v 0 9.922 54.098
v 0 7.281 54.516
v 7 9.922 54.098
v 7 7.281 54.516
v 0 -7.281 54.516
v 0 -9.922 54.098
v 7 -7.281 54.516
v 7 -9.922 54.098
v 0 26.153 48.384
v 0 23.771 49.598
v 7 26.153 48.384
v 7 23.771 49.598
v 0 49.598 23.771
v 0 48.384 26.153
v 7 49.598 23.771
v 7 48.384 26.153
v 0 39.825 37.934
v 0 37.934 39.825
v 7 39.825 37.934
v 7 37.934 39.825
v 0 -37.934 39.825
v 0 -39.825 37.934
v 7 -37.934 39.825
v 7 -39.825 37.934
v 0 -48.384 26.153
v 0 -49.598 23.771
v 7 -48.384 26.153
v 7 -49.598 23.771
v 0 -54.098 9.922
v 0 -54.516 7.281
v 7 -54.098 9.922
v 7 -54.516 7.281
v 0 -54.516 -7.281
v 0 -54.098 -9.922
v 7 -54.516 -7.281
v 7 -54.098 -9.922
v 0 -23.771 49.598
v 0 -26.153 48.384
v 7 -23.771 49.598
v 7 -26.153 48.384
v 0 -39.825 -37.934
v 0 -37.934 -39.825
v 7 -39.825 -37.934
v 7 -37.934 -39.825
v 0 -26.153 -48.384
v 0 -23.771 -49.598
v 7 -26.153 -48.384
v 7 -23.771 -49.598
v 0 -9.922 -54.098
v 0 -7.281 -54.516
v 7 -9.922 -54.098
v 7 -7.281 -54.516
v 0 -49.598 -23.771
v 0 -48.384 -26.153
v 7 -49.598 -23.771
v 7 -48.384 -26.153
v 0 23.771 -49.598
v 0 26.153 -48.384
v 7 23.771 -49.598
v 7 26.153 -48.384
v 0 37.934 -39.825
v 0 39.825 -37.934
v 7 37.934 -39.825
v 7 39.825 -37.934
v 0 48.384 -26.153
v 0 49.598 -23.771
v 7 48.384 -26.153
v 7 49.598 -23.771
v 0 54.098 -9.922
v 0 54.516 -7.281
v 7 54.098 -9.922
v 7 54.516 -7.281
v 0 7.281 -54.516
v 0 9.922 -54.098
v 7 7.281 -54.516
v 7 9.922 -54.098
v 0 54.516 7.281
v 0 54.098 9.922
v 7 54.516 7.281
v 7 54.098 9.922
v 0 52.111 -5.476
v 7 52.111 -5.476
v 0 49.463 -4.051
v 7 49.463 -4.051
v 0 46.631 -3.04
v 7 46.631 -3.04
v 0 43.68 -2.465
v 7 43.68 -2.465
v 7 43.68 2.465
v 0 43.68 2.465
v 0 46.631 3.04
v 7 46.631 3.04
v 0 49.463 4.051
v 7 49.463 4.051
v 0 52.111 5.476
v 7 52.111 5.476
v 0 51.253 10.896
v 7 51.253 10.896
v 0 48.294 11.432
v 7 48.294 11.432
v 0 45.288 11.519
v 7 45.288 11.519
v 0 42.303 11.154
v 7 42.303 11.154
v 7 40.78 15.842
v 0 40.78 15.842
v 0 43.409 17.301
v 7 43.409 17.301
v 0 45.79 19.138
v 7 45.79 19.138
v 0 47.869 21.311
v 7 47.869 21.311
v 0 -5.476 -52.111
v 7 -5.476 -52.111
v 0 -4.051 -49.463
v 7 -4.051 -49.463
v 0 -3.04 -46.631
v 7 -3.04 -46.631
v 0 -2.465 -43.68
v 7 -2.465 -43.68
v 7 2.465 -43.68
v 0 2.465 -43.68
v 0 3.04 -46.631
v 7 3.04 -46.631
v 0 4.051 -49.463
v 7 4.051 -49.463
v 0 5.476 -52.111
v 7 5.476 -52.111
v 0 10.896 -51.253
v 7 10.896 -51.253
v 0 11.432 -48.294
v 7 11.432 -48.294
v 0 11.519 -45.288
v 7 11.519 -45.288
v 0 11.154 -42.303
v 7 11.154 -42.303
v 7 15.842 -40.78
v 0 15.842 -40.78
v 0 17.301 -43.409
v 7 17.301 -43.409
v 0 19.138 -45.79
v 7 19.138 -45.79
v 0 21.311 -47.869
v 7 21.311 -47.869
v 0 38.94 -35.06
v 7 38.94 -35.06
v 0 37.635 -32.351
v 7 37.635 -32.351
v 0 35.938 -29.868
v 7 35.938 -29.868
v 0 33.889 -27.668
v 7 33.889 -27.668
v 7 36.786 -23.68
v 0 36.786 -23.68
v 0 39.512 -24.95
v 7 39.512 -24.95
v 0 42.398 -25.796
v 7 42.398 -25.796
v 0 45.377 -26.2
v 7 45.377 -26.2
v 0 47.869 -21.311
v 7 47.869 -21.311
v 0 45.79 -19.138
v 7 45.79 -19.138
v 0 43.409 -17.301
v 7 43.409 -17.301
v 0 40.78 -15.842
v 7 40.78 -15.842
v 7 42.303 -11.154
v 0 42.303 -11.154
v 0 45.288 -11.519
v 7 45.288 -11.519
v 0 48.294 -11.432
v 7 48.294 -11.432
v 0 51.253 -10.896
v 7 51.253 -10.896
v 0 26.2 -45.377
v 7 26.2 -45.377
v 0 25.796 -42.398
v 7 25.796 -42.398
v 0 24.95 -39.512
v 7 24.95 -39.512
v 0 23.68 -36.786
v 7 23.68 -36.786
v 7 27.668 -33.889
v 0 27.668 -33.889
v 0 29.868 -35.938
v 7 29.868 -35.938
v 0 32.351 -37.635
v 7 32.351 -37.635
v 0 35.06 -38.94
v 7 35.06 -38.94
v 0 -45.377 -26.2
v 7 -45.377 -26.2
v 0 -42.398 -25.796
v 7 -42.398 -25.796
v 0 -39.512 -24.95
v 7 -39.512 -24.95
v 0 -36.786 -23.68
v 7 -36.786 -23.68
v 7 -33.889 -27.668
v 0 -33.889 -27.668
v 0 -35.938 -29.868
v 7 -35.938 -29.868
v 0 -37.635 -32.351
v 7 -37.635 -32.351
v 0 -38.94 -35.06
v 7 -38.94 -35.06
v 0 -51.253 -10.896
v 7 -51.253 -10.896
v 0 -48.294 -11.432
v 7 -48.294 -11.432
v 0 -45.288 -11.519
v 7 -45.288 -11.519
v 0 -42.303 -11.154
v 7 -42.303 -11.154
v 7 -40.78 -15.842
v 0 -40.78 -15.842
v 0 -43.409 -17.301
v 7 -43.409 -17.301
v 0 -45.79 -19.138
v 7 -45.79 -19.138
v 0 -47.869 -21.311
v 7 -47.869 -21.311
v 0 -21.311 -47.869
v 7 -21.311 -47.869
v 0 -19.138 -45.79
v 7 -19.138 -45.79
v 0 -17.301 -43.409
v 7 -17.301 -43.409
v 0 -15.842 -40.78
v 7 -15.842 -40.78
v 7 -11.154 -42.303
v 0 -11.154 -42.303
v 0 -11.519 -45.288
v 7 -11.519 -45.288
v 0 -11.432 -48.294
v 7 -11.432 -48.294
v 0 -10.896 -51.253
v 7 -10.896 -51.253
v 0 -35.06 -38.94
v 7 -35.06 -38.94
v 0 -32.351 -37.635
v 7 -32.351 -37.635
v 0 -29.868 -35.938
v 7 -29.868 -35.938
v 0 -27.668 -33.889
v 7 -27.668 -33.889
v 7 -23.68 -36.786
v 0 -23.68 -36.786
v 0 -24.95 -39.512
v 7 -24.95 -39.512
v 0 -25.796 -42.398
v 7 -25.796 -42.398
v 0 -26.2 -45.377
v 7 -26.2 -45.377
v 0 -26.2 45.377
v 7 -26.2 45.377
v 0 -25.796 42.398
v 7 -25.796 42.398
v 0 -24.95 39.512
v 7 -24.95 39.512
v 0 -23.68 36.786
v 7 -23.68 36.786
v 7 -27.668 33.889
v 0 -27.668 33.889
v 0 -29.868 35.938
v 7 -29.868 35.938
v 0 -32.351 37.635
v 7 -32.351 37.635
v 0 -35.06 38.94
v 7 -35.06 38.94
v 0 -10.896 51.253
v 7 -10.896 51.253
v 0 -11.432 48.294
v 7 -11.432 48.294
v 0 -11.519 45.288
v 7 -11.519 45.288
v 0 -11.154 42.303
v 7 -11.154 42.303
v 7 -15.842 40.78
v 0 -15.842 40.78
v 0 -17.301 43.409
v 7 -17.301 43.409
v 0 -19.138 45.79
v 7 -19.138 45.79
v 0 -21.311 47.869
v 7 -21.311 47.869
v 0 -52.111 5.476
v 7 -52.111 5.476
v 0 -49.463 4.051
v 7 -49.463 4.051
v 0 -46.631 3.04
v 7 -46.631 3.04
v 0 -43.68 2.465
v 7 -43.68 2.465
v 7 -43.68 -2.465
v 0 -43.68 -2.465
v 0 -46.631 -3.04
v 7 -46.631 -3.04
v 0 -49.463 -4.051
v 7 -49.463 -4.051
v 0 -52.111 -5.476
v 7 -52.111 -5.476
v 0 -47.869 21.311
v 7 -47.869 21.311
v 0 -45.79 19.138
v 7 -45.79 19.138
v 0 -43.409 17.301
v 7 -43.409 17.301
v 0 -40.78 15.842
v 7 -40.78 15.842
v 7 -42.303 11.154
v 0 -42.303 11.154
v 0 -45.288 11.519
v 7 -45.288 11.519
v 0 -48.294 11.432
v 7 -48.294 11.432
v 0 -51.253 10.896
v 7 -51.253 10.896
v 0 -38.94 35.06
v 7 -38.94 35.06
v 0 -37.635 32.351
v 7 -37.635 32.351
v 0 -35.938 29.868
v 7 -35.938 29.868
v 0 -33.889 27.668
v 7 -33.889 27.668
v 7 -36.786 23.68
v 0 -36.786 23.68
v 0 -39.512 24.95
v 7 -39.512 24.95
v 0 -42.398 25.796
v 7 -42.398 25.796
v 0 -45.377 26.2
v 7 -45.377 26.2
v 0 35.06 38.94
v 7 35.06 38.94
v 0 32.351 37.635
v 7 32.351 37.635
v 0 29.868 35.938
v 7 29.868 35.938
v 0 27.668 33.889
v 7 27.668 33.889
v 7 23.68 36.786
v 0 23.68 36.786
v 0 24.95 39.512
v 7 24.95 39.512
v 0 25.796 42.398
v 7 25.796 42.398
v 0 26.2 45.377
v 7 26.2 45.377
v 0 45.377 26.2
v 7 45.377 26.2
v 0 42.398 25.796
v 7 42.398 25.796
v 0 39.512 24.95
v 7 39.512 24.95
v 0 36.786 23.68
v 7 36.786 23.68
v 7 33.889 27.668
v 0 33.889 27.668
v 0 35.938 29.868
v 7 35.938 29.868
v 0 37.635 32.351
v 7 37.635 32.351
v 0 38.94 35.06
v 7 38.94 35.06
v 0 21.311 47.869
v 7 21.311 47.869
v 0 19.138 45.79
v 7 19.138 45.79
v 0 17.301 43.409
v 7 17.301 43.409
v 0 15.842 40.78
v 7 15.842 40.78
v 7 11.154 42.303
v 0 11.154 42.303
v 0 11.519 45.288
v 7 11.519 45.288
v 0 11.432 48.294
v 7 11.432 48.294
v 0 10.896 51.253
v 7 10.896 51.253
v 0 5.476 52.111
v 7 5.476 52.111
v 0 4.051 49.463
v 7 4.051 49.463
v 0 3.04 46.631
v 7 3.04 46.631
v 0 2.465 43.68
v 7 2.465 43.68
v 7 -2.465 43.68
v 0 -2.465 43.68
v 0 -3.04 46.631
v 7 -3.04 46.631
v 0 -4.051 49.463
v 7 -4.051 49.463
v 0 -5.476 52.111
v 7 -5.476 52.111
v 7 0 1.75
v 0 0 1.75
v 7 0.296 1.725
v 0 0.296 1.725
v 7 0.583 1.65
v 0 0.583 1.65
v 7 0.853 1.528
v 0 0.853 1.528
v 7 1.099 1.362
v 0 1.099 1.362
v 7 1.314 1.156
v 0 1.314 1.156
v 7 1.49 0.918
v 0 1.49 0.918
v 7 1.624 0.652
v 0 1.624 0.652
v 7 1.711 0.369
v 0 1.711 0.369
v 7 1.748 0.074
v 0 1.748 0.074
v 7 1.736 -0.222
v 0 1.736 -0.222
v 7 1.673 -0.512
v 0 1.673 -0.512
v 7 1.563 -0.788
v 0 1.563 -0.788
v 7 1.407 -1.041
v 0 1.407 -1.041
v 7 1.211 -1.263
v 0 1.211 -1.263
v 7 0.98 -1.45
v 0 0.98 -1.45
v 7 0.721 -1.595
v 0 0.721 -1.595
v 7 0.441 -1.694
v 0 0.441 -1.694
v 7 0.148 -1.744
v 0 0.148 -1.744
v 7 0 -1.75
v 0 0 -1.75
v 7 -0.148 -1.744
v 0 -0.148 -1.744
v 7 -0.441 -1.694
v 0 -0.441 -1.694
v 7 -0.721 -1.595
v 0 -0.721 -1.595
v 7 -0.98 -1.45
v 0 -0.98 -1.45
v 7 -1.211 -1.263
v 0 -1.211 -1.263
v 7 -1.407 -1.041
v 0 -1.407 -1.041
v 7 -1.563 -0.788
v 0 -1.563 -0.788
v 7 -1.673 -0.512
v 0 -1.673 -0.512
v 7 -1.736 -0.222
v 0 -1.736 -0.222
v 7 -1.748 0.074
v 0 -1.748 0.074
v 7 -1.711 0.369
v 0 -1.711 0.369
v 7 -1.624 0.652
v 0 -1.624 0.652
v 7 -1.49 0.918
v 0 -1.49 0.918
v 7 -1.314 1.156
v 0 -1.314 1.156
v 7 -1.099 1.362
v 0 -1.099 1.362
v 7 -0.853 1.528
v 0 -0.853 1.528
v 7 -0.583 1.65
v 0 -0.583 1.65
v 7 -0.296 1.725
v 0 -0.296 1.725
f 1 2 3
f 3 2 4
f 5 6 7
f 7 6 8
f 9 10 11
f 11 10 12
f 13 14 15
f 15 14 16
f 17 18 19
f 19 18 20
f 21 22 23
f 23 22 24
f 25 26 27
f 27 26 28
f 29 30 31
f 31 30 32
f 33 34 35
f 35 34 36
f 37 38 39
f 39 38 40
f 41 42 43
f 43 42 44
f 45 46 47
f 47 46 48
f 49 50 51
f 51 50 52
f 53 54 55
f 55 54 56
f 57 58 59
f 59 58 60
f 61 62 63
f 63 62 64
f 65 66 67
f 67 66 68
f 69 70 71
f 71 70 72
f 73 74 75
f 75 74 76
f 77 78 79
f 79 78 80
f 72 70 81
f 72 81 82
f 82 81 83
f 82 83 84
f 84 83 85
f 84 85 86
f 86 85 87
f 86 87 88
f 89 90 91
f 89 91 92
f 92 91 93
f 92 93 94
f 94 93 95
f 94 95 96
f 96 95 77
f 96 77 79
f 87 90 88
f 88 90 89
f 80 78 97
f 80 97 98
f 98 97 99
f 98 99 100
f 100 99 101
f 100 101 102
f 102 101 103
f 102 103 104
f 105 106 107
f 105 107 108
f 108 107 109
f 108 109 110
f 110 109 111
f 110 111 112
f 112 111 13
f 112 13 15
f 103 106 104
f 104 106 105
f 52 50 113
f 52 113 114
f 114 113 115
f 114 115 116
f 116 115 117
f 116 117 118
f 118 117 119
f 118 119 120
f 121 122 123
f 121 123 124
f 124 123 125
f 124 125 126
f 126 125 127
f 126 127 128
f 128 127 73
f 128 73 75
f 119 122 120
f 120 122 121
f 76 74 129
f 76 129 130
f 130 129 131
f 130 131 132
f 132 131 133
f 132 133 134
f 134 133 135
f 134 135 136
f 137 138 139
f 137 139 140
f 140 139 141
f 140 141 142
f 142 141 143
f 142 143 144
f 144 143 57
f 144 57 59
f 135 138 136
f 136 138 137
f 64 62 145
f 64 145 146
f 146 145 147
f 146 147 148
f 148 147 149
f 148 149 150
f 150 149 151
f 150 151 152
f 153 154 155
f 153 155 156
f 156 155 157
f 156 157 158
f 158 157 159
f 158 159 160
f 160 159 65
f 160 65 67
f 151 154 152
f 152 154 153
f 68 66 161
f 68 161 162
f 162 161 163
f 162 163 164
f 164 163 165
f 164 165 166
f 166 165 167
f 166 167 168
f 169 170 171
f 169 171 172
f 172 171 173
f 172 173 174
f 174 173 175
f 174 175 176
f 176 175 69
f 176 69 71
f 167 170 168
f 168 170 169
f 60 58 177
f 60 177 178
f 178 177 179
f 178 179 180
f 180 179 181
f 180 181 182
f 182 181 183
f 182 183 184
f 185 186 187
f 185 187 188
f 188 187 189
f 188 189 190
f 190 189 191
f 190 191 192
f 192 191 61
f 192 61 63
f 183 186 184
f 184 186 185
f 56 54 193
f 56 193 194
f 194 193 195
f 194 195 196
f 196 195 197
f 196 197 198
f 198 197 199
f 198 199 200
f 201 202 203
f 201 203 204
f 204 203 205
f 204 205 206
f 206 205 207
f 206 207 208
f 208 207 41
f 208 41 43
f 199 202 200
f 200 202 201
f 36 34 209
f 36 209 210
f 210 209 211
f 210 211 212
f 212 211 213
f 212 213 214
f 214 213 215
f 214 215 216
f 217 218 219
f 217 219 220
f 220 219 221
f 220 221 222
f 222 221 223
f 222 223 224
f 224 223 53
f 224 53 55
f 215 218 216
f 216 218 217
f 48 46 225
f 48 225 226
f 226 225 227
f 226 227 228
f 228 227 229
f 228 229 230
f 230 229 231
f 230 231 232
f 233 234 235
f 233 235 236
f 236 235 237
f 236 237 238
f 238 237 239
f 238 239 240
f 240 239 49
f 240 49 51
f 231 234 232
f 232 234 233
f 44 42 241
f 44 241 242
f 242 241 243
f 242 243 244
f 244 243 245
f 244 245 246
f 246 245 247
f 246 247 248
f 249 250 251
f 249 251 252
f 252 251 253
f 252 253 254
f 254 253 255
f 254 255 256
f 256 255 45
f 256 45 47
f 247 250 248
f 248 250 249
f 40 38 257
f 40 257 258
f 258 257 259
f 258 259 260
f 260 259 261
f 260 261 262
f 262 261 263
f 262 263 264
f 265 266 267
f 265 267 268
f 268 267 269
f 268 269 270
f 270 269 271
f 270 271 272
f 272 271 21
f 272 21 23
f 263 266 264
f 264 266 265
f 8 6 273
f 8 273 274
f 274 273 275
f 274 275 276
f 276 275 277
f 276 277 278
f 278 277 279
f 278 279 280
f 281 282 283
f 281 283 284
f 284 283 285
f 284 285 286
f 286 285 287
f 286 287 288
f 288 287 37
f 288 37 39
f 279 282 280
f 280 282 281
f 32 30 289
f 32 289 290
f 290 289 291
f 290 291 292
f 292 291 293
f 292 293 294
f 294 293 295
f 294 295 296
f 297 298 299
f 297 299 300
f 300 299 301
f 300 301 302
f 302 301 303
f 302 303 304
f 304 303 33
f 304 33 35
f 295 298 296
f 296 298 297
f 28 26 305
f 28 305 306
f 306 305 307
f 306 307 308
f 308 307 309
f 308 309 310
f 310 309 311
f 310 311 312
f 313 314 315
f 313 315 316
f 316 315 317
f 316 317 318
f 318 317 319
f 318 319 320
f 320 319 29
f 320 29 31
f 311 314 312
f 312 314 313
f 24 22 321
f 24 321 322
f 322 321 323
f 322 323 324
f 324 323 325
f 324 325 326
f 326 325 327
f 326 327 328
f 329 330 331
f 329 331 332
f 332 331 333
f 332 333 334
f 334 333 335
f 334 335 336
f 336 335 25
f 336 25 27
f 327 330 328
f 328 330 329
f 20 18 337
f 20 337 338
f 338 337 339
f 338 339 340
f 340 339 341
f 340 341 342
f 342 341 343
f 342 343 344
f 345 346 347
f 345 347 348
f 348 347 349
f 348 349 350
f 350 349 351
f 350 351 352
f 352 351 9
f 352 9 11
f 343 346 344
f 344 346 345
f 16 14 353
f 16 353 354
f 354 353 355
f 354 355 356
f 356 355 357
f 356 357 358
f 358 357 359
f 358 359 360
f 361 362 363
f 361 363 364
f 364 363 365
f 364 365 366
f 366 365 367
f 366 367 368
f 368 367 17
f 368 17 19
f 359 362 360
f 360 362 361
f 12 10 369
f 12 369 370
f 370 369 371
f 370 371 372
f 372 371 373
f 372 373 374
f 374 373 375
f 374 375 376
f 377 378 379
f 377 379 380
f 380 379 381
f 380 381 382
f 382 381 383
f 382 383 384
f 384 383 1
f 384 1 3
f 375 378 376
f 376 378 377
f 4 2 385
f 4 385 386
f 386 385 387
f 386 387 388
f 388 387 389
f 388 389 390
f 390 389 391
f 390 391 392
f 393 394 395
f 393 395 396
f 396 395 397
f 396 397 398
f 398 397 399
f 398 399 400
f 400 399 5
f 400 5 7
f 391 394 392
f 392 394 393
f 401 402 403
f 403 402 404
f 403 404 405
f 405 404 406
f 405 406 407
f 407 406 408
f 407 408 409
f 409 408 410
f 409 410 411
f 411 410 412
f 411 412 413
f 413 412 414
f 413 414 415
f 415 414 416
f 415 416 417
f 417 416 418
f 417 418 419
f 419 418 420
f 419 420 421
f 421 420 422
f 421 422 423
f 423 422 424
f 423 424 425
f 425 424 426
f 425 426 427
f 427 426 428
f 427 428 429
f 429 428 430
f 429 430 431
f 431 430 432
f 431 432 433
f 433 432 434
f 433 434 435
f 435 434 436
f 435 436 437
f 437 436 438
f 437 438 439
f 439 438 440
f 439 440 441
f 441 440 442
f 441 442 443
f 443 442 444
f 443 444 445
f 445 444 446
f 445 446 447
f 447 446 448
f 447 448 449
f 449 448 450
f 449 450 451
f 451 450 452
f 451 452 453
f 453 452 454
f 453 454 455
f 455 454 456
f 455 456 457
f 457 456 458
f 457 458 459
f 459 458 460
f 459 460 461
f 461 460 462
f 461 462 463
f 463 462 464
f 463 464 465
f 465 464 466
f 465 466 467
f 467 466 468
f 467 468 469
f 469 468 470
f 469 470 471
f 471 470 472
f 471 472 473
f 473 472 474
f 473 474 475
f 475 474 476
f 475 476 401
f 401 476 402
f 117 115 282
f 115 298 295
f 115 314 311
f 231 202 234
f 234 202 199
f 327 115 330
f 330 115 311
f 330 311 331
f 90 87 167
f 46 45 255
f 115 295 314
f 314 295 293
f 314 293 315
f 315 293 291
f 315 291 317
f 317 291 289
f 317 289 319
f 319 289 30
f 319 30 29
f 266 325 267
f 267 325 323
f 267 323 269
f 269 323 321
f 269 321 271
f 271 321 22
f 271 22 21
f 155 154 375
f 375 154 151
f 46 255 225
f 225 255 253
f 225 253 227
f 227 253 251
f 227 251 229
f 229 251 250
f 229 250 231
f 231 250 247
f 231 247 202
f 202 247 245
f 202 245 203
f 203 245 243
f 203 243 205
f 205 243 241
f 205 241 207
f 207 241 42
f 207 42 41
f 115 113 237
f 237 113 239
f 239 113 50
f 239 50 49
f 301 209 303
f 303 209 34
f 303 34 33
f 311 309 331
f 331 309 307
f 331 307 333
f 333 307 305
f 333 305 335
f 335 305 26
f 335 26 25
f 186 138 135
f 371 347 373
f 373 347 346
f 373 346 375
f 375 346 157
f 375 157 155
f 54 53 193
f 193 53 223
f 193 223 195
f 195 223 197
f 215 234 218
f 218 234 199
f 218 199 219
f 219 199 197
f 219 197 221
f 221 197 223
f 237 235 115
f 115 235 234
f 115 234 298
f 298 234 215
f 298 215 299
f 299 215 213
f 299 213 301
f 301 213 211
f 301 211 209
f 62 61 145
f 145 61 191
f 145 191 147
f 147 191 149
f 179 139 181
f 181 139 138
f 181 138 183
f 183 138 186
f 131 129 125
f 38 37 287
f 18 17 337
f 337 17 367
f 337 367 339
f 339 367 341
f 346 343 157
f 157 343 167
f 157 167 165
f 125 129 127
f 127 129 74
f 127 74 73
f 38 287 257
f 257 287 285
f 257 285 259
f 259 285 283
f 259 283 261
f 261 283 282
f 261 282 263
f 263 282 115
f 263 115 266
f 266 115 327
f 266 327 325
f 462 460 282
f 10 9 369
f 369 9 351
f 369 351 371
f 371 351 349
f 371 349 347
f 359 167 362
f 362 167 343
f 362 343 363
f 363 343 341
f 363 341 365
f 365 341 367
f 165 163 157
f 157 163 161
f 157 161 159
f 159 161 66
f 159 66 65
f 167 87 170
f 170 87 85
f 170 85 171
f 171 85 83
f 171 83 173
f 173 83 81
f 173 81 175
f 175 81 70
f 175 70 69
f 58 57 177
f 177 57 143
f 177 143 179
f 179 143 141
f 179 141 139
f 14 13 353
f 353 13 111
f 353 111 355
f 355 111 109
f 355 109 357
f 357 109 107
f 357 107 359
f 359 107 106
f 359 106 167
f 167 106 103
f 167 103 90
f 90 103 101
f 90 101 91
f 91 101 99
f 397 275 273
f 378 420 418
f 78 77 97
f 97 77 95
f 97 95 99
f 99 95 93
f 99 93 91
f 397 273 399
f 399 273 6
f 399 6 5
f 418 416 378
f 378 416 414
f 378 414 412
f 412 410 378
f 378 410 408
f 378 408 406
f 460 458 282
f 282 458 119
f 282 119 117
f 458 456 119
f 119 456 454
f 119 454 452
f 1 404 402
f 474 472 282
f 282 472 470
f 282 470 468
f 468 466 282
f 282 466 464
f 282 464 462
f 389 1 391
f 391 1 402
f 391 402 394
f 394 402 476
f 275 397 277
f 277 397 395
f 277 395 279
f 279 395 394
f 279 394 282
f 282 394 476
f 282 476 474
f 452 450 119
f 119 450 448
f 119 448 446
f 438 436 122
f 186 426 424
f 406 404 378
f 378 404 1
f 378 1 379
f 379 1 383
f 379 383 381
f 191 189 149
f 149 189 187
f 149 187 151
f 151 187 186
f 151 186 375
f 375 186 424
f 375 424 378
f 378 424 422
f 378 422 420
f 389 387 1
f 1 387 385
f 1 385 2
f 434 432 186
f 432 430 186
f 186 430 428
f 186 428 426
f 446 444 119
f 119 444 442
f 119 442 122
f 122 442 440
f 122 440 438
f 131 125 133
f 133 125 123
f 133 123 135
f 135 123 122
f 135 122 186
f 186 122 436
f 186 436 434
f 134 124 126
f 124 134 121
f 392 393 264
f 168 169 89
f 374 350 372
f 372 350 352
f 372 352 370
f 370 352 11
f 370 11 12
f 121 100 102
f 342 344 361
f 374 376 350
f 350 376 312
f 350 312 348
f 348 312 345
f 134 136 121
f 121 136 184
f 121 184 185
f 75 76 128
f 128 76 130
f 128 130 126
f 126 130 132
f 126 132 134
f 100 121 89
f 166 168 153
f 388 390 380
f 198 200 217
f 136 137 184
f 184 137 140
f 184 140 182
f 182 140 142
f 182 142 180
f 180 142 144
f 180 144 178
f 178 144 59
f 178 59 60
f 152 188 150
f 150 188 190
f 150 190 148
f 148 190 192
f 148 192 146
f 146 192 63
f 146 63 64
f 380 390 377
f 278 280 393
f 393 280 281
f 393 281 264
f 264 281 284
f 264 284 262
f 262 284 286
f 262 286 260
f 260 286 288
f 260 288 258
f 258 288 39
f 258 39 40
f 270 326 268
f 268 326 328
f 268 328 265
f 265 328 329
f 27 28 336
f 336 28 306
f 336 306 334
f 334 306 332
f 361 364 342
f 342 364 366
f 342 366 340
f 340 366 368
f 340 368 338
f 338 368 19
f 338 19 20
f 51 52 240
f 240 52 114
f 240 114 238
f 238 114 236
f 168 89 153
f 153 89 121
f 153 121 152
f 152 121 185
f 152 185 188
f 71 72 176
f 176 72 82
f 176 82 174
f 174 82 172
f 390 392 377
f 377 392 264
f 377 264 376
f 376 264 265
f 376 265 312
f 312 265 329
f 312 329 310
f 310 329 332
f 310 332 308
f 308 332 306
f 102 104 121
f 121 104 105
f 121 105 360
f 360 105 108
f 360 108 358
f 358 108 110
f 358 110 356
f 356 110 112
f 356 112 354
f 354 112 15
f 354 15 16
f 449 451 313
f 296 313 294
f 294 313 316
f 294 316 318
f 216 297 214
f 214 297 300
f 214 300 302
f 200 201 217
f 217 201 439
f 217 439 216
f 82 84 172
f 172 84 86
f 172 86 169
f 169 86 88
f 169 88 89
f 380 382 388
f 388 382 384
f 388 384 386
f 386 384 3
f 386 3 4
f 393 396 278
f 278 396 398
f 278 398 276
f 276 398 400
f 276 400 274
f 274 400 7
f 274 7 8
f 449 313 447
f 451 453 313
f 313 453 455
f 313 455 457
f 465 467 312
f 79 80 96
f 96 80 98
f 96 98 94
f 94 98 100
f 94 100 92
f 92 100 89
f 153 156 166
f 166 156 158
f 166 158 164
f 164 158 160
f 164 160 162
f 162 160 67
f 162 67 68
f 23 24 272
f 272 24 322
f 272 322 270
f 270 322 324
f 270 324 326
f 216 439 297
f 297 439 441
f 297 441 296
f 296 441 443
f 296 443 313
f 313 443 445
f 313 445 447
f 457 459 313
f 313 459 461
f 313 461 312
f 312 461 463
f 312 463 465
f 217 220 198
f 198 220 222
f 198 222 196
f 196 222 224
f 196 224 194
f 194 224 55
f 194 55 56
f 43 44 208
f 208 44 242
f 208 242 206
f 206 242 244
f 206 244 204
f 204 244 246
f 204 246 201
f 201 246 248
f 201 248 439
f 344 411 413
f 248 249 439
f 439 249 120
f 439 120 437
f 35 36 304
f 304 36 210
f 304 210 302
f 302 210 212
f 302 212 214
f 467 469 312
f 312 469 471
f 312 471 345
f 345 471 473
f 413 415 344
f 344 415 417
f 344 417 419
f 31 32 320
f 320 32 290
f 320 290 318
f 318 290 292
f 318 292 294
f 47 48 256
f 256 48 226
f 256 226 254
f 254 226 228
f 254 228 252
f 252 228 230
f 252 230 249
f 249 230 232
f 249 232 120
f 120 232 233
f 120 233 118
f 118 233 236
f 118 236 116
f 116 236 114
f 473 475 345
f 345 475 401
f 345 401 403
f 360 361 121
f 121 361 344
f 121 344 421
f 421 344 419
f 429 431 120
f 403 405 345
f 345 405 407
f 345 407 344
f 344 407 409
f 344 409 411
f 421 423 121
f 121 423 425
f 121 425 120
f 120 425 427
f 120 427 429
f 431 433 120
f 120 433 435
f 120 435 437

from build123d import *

# Parameters (mm, degrees)
BASPROSKE_W         = 30
BASPROSKE_H         = 55
TOOTHCUT_DEPTH      = 84.366660003
TEETHCUTS_COUNT     = 20
TEETHCUTS_ANGLE     = 342
HUBNEABOTSKE_R      = 12.5
HUBNEARBOTH_DEPTH   = 5.0000254
HUBFAR_START        = 5.0000254
HUBFARSKE_R         = 12.5
HUBFAR_DEPTH        = 5.0000254
BORSKE_R            = 5
BORE_DEPTH          = 40.0000508
SKETCH1_R           = 7
SKETCH1_R_2         = 1.75
BOSS_EXTRUDE1_DEPTH = 40.0000508
SKETCH2_R           = 61.585306659
CUT_EXTRUDE1_DEPTH  = 28
SKETCH3_R           = 13.575984162
CUT_EXTRUDE4_DEPTH  = 5.0000254


with BuildPart() as part:
    # BasProSke → Base-Revolve (revolve)
    with BuildSketch(Plane(origin=(0, 0, 0), x_dir=(1, 0, 0), z_dir=(0, 1, 0)), mode=Mode.PRIVATE) as base_revolve_sk:
        with Locations((15, 27.5)):
            Rectangle(BASPROSKE_W, BASPROSKE_H)
    revolve(base_revolve_sk.sketch.rotate(Axis((-10, 0, 0), (1, 0, 0)), 180), axis=Axis((-10, 0, 0), (1, 0, 0)))

    # TooCutSke → ToothCut (cut, through all)
    with BuildSketch(Plane(origin=(0, 0, 0), x_dir=(0, 0, -1), z_dir=(1, 0, 0))):
        with BuildLine():
            ThreePointArc((2.464838288, 43.679509764), (0, 43.749), (-2.464838288, 43.679509764))
            ThreePointArc((-2.464838288, 43.679509764), (-4.057398861, 49.476814676), (-7.300899231, 54.538899105))
            ThreePointArc((-7.300899231, 54.538899105), (0, 55.0254), (7.300899231, 54.538899105))
            ThreePointArc((7.300899231, 54.538899105), (4.057398861, 49.476814676), (2.464838288, 43.679509764))
        make_face()
    toothcut = extrude(amount=TOOTHCUT_DEPTH, mode=Mode.SUBTRACT)

    # TeethCuts: ToothCut ×20 about axis
    teethcuts_axis = Axis((-10, 0, 0), (1, 0, 0))
    for i in range(1, TEETHCUTS_COUNT):
        add(toothcut.rotate(teethcuts_axis, i * TEETHCUTS_ANGLE / (TEETHCUTS_COUNT - 1)), mode=Mode.SUBTRACT)

    # HubNeaBotSke → HubNearBoth (add)
    with BuildSketch(Plane.ZY):
        with Locations(Location((0, 0, 0), (0, 0, 180))):
            Circle(HUBNEABOTSKE_R)
    extrude(amount=HUBNEARBOTH_DEPTH)

    # HubFarSke → HubFar (add)
    with BuildSketch(Plane(origin=(30, 0, 0), x_dir=(0, 0, -1), z_dir=(1, 0, 0)).offset(HUBFAR_START)):
        Circle(HUBFARSKE_R)
    extrude(amount=-HUBFAR_DEPTH)

    # BorSke → Bore (cut, symmetric)
    with BuildSketch(Plane(origin=(0, 0, 0), x_dir=(0, 0, -1), z_dir=(1, 0, 0))):
        with Locations(Location((0, 0, 0), (0, 0, 180))):
            Circle(BORSKE_R)
    extrude(amount=BORE_DEPTH, both=True, mode=Mode.SUBTRACT)

    # Sketch1 → Boss-Extrude1 (add)
    with BuildSketch(Plane.ZY.offset(5.0000254)):
        Circle(SKETCH1_R)
        Circle(SKETCH1_R_2, mode=Mode.SUBTRACT)
    extrude(amount=-BOSS_EXTRUDE1_DEPTH)

    # Sketch2 → Cut-Extrude1 (cut)
    with BuildSketch(Plane(origin=(35.0000254, 0, 0), x_dir=(0, 0, -1), z_dir=(1, 0, 0))):
        Circle(SKETCH2_R)
    extrude(amount=-CUT_EXTRUDE1_DEPTH, mode=Mode.SUBTRACT)

    # Sketch3 → Cut-Extrude4 (cut)
    with BuildSketch(Plane.ZY.offset(5.0000254)):
        Circle(SKETCH3_R)
    extrude(amount=-CUT_EXTRUDE4_DEPTH, mode=Mode.SUBTRACT)


solid = part.part
